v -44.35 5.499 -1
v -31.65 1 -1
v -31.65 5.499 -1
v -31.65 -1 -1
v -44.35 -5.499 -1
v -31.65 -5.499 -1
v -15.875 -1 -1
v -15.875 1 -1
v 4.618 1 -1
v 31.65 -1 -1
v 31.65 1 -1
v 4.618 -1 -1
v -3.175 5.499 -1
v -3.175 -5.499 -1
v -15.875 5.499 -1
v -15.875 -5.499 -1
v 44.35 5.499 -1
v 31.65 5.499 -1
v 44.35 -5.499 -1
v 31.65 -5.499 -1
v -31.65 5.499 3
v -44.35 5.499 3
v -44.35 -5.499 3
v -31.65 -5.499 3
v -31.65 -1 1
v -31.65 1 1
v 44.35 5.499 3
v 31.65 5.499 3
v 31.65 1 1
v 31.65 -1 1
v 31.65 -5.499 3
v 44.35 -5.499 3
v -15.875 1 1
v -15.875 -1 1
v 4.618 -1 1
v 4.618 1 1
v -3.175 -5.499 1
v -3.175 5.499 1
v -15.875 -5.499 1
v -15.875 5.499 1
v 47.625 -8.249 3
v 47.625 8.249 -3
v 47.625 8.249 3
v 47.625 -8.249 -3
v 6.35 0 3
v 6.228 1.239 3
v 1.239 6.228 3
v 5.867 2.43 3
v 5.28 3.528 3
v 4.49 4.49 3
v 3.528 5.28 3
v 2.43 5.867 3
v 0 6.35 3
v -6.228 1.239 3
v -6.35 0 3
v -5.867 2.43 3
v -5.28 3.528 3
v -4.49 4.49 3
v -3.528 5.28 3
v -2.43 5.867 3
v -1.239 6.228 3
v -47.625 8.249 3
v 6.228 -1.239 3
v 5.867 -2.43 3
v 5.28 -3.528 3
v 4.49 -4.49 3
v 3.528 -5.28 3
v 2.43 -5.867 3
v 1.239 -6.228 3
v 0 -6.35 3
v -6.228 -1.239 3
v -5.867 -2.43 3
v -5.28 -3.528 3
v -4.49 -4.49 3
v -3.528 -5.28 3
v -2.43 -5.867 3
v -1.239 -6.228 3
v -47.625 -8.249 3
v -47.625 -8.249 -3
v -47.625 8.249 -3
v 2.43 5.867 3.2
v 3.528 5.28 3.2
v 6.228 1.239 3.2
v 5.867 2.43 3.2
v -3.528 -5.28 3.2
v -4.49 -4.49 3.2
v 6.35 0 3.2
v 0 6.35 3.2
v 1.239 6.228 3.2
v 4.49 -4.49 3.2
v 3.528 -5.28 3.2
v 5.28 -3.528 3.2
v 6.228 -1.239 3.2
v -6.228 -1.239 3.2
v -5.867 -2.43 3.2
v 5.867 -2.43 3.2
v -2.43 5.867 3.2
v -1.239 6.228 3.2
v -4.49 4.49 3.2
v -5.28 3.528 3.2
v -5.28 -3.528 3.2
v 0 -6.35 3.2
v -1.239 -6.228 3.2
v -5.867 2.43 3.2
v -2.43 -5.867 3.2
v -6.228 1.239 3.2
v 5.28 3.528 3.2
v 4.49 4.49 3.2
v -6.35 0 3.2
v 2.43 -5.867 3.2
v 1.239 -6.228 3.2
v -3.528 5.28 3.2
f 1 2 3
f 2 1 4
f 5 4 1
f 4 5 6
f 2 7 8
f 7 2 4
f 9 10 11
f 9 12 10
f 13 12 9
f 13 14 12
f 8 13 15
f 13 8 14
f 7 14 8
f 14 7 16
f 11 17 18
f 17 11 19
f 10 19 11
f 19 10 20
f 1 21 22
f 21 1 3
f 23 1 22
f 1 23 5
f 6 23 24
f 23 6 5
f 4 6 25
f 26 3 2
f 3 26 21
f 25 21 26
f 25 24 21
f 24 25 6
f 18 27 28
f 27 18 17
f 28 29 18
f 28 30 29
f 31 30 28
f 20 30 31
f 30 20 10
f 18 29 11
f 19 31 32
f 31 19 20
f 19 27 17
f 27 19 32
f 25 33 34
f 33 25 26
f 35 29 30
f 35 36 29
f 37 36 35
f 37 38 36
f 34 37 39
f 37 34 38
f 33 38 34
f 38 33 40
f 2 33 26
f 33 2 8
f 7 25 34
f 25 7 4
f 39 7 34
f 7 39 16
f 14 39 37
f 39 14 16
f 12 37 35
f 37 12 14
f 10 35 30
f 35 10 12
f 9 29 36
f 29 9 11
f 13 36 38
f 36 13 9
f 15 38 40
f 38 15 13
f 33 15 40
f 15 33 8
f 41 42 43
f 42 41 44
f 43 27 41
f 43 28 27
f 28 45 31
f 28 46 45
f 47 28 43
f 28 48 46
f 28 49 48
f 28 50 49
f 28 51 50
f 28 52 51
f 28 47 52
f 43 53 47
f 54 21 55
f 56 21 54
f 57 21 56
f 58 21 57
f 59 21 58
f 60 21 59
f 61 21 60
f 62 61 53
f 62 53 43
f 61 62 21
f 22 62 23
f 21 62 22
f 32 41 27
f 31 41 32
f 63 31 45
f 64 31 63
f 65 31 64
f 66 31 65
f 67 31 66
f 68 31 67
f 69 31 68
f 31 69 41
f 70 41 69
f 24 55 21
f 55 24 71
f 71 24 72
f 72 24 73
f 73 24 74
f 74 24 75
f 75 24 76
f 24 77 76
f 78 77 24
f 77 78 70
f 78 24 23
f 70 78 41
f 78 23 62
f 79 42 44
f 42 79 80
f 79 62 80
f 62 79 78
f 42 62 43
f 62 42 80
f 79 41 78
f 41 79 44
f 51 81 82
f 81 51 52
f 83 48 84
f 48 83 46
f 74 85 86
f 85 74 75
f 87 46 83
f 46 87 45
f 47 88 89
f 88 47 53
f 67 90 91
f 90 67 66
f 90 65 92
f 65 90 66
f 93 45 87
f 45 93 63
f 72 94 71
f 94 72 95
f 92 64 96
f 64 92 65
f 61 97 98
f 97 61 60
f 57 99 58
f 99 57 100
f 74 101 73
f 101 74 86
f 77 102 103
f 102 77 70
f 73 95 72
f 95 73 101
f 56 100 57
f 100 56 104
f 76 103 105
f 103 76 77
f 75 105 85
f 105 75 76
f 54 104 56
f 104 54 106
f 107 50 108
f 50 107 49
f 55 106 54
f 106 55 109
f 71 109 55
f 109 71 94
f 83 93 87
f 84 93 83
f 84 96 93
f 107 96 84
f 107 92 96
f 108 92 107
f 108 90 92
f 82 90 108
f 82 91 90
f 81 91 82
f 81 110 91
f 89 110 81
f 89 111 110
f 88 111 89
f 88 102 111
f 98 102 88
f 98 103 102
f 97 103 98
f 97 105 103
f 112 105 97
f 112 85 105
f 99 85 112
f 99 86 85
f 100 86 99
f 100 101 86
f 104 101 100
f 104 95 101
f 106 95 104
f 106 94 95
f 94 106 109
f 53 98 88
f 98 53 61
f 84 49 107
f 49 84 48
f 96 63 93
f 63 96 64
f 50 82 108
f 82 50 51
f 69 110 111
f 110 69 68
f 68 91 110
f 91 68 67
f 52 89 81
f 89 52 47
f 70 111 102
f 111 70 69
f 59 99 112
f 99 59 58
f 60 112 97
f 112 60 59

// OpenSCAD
//
//    PumpConcept - V 0.1
//    Copyright (C) 2021  Robert L. Read
//
//    This program is free software: you can redistribute it and/or modify
//    it under the terms of the GNU General Public License as published by
//    the Free Software Foundation, either version 3 of the License, or
//    (at your option) any later version.
//
//    This program is distributed in the hope that it will be useful,
//    but WITHOUT ANY WARRANTY; without even the implied warranty of
//    MERCHANTABILITY or FITNESS FOR A PARTICULAR PURPOSE.  See the
//    GNU General Public License for more details.
//
//    You should have received a copy of the GNU General Public License
//    along with this program.  If not, see <https://www.gnu.org/licenses/>.

// This is an experimental attempt to design a ferrofluid pump with no moving parts.abs
// I will attempt to make this as a linear extrusion of the chamber space, and then
// subtract that from the solid shape.abs
// I am attempting to build the simplest apparatus that can be used to test the 
// hypothesis that oscillating the magnitude (not direction) of the field can 
// create flow.

CircularMagnetDiameter = 12.7; // We use a half-inch magnet
CMD = CircularMagnetDiameter;
ChamberHeightZ = 2.0; // We will make a 2.0 mm high chamber
WellHeightZ = 4.0;
EqTriHeight = sqrt(3)/2;
SideLength = sqrt(3) * CMD;
InscribedRadius = sqrt(3)/6;
ChamberWidth = 1.0 * EqTriHeight * CMD;
ChamberLength = 1.0 * CMD;
ChannelLength = 5 * CMD; // we want a nice long chamber to be able to see the
// pumping effect visually.
ChannelWidth = 2.0;

TriangularLength = 0.7 * CMD;
ThickChamberLength = CMD / 2;

// Now I will union together two triangles, a rectangle, and long
// channel for the purpose of building this.

 module regular_polygon(order = 4, r=1){
     angles=[ for (i = [0:order-1]) i*(360/order) ];
     coords=[ for (th=angles) [r*cos(th), r*sin(th)] ];
     polygon(coords);
 }

module chamber() {
    union() {
        translate([0,0,WellHeightZ - ChamberHeightZ/2])
        linear_extrude(height = WellHeightZ*2, center = true, slices = 20, scale = 1.0, $fn = 16)
        union() {
            translate([-ChamberLength/2+-(ChannelLength/2)+.1,0,0])
            square([ChamberLength,ChamberWidth],true);
        
            translate([+ChamberLength/2+(ChannelLength/2)-.1,0,0])
            square([ChamberLength,ChamberWidth],true);
        }
        linear_extrude(height = ChamberHeightZ, center = true, slices = 20, scale = 1.0, $fn = 16)
        union() {
        translate([0,0,0])
        square([ChannelLength,ChannelWidth],true);
        translate([0,0,0])
        color("red")
        translate([-(ChamberLength/2 + SideLength*EqTriHeight/6),0,0])
            square([ChamberLength,ChamberWidth],true);
            
        regular_polygon(order = 3, r=CMD/2);
            
        %color("blue")
        translate([-(3*ChamberLength/2 + 0*EqTriHeight * SideLength / 3),0,0])
        rotate([0,0,180])
        regular_polygon(order = 3, r=CMD/2);
        }
    }
}

module referenceCircle() {
    circle(r = CMD/2);
}

module holdingSlab() {
    translate([0,0,0])
    cube([ChannelLength+ChamberLength*2.5,ChamberWidth*1.5,ChamberHeightZ*3],true);
}

union() {
    color("red")
    translate([0,0,ChamberHeightZ*3/2])
    linear_extrude(height = 0.4, center = true, slices = 20, scale = 1.0, $fn = 32)
    referenceCircle();
    difference() {
        holdingSlab();
        chamber();
    }
}
